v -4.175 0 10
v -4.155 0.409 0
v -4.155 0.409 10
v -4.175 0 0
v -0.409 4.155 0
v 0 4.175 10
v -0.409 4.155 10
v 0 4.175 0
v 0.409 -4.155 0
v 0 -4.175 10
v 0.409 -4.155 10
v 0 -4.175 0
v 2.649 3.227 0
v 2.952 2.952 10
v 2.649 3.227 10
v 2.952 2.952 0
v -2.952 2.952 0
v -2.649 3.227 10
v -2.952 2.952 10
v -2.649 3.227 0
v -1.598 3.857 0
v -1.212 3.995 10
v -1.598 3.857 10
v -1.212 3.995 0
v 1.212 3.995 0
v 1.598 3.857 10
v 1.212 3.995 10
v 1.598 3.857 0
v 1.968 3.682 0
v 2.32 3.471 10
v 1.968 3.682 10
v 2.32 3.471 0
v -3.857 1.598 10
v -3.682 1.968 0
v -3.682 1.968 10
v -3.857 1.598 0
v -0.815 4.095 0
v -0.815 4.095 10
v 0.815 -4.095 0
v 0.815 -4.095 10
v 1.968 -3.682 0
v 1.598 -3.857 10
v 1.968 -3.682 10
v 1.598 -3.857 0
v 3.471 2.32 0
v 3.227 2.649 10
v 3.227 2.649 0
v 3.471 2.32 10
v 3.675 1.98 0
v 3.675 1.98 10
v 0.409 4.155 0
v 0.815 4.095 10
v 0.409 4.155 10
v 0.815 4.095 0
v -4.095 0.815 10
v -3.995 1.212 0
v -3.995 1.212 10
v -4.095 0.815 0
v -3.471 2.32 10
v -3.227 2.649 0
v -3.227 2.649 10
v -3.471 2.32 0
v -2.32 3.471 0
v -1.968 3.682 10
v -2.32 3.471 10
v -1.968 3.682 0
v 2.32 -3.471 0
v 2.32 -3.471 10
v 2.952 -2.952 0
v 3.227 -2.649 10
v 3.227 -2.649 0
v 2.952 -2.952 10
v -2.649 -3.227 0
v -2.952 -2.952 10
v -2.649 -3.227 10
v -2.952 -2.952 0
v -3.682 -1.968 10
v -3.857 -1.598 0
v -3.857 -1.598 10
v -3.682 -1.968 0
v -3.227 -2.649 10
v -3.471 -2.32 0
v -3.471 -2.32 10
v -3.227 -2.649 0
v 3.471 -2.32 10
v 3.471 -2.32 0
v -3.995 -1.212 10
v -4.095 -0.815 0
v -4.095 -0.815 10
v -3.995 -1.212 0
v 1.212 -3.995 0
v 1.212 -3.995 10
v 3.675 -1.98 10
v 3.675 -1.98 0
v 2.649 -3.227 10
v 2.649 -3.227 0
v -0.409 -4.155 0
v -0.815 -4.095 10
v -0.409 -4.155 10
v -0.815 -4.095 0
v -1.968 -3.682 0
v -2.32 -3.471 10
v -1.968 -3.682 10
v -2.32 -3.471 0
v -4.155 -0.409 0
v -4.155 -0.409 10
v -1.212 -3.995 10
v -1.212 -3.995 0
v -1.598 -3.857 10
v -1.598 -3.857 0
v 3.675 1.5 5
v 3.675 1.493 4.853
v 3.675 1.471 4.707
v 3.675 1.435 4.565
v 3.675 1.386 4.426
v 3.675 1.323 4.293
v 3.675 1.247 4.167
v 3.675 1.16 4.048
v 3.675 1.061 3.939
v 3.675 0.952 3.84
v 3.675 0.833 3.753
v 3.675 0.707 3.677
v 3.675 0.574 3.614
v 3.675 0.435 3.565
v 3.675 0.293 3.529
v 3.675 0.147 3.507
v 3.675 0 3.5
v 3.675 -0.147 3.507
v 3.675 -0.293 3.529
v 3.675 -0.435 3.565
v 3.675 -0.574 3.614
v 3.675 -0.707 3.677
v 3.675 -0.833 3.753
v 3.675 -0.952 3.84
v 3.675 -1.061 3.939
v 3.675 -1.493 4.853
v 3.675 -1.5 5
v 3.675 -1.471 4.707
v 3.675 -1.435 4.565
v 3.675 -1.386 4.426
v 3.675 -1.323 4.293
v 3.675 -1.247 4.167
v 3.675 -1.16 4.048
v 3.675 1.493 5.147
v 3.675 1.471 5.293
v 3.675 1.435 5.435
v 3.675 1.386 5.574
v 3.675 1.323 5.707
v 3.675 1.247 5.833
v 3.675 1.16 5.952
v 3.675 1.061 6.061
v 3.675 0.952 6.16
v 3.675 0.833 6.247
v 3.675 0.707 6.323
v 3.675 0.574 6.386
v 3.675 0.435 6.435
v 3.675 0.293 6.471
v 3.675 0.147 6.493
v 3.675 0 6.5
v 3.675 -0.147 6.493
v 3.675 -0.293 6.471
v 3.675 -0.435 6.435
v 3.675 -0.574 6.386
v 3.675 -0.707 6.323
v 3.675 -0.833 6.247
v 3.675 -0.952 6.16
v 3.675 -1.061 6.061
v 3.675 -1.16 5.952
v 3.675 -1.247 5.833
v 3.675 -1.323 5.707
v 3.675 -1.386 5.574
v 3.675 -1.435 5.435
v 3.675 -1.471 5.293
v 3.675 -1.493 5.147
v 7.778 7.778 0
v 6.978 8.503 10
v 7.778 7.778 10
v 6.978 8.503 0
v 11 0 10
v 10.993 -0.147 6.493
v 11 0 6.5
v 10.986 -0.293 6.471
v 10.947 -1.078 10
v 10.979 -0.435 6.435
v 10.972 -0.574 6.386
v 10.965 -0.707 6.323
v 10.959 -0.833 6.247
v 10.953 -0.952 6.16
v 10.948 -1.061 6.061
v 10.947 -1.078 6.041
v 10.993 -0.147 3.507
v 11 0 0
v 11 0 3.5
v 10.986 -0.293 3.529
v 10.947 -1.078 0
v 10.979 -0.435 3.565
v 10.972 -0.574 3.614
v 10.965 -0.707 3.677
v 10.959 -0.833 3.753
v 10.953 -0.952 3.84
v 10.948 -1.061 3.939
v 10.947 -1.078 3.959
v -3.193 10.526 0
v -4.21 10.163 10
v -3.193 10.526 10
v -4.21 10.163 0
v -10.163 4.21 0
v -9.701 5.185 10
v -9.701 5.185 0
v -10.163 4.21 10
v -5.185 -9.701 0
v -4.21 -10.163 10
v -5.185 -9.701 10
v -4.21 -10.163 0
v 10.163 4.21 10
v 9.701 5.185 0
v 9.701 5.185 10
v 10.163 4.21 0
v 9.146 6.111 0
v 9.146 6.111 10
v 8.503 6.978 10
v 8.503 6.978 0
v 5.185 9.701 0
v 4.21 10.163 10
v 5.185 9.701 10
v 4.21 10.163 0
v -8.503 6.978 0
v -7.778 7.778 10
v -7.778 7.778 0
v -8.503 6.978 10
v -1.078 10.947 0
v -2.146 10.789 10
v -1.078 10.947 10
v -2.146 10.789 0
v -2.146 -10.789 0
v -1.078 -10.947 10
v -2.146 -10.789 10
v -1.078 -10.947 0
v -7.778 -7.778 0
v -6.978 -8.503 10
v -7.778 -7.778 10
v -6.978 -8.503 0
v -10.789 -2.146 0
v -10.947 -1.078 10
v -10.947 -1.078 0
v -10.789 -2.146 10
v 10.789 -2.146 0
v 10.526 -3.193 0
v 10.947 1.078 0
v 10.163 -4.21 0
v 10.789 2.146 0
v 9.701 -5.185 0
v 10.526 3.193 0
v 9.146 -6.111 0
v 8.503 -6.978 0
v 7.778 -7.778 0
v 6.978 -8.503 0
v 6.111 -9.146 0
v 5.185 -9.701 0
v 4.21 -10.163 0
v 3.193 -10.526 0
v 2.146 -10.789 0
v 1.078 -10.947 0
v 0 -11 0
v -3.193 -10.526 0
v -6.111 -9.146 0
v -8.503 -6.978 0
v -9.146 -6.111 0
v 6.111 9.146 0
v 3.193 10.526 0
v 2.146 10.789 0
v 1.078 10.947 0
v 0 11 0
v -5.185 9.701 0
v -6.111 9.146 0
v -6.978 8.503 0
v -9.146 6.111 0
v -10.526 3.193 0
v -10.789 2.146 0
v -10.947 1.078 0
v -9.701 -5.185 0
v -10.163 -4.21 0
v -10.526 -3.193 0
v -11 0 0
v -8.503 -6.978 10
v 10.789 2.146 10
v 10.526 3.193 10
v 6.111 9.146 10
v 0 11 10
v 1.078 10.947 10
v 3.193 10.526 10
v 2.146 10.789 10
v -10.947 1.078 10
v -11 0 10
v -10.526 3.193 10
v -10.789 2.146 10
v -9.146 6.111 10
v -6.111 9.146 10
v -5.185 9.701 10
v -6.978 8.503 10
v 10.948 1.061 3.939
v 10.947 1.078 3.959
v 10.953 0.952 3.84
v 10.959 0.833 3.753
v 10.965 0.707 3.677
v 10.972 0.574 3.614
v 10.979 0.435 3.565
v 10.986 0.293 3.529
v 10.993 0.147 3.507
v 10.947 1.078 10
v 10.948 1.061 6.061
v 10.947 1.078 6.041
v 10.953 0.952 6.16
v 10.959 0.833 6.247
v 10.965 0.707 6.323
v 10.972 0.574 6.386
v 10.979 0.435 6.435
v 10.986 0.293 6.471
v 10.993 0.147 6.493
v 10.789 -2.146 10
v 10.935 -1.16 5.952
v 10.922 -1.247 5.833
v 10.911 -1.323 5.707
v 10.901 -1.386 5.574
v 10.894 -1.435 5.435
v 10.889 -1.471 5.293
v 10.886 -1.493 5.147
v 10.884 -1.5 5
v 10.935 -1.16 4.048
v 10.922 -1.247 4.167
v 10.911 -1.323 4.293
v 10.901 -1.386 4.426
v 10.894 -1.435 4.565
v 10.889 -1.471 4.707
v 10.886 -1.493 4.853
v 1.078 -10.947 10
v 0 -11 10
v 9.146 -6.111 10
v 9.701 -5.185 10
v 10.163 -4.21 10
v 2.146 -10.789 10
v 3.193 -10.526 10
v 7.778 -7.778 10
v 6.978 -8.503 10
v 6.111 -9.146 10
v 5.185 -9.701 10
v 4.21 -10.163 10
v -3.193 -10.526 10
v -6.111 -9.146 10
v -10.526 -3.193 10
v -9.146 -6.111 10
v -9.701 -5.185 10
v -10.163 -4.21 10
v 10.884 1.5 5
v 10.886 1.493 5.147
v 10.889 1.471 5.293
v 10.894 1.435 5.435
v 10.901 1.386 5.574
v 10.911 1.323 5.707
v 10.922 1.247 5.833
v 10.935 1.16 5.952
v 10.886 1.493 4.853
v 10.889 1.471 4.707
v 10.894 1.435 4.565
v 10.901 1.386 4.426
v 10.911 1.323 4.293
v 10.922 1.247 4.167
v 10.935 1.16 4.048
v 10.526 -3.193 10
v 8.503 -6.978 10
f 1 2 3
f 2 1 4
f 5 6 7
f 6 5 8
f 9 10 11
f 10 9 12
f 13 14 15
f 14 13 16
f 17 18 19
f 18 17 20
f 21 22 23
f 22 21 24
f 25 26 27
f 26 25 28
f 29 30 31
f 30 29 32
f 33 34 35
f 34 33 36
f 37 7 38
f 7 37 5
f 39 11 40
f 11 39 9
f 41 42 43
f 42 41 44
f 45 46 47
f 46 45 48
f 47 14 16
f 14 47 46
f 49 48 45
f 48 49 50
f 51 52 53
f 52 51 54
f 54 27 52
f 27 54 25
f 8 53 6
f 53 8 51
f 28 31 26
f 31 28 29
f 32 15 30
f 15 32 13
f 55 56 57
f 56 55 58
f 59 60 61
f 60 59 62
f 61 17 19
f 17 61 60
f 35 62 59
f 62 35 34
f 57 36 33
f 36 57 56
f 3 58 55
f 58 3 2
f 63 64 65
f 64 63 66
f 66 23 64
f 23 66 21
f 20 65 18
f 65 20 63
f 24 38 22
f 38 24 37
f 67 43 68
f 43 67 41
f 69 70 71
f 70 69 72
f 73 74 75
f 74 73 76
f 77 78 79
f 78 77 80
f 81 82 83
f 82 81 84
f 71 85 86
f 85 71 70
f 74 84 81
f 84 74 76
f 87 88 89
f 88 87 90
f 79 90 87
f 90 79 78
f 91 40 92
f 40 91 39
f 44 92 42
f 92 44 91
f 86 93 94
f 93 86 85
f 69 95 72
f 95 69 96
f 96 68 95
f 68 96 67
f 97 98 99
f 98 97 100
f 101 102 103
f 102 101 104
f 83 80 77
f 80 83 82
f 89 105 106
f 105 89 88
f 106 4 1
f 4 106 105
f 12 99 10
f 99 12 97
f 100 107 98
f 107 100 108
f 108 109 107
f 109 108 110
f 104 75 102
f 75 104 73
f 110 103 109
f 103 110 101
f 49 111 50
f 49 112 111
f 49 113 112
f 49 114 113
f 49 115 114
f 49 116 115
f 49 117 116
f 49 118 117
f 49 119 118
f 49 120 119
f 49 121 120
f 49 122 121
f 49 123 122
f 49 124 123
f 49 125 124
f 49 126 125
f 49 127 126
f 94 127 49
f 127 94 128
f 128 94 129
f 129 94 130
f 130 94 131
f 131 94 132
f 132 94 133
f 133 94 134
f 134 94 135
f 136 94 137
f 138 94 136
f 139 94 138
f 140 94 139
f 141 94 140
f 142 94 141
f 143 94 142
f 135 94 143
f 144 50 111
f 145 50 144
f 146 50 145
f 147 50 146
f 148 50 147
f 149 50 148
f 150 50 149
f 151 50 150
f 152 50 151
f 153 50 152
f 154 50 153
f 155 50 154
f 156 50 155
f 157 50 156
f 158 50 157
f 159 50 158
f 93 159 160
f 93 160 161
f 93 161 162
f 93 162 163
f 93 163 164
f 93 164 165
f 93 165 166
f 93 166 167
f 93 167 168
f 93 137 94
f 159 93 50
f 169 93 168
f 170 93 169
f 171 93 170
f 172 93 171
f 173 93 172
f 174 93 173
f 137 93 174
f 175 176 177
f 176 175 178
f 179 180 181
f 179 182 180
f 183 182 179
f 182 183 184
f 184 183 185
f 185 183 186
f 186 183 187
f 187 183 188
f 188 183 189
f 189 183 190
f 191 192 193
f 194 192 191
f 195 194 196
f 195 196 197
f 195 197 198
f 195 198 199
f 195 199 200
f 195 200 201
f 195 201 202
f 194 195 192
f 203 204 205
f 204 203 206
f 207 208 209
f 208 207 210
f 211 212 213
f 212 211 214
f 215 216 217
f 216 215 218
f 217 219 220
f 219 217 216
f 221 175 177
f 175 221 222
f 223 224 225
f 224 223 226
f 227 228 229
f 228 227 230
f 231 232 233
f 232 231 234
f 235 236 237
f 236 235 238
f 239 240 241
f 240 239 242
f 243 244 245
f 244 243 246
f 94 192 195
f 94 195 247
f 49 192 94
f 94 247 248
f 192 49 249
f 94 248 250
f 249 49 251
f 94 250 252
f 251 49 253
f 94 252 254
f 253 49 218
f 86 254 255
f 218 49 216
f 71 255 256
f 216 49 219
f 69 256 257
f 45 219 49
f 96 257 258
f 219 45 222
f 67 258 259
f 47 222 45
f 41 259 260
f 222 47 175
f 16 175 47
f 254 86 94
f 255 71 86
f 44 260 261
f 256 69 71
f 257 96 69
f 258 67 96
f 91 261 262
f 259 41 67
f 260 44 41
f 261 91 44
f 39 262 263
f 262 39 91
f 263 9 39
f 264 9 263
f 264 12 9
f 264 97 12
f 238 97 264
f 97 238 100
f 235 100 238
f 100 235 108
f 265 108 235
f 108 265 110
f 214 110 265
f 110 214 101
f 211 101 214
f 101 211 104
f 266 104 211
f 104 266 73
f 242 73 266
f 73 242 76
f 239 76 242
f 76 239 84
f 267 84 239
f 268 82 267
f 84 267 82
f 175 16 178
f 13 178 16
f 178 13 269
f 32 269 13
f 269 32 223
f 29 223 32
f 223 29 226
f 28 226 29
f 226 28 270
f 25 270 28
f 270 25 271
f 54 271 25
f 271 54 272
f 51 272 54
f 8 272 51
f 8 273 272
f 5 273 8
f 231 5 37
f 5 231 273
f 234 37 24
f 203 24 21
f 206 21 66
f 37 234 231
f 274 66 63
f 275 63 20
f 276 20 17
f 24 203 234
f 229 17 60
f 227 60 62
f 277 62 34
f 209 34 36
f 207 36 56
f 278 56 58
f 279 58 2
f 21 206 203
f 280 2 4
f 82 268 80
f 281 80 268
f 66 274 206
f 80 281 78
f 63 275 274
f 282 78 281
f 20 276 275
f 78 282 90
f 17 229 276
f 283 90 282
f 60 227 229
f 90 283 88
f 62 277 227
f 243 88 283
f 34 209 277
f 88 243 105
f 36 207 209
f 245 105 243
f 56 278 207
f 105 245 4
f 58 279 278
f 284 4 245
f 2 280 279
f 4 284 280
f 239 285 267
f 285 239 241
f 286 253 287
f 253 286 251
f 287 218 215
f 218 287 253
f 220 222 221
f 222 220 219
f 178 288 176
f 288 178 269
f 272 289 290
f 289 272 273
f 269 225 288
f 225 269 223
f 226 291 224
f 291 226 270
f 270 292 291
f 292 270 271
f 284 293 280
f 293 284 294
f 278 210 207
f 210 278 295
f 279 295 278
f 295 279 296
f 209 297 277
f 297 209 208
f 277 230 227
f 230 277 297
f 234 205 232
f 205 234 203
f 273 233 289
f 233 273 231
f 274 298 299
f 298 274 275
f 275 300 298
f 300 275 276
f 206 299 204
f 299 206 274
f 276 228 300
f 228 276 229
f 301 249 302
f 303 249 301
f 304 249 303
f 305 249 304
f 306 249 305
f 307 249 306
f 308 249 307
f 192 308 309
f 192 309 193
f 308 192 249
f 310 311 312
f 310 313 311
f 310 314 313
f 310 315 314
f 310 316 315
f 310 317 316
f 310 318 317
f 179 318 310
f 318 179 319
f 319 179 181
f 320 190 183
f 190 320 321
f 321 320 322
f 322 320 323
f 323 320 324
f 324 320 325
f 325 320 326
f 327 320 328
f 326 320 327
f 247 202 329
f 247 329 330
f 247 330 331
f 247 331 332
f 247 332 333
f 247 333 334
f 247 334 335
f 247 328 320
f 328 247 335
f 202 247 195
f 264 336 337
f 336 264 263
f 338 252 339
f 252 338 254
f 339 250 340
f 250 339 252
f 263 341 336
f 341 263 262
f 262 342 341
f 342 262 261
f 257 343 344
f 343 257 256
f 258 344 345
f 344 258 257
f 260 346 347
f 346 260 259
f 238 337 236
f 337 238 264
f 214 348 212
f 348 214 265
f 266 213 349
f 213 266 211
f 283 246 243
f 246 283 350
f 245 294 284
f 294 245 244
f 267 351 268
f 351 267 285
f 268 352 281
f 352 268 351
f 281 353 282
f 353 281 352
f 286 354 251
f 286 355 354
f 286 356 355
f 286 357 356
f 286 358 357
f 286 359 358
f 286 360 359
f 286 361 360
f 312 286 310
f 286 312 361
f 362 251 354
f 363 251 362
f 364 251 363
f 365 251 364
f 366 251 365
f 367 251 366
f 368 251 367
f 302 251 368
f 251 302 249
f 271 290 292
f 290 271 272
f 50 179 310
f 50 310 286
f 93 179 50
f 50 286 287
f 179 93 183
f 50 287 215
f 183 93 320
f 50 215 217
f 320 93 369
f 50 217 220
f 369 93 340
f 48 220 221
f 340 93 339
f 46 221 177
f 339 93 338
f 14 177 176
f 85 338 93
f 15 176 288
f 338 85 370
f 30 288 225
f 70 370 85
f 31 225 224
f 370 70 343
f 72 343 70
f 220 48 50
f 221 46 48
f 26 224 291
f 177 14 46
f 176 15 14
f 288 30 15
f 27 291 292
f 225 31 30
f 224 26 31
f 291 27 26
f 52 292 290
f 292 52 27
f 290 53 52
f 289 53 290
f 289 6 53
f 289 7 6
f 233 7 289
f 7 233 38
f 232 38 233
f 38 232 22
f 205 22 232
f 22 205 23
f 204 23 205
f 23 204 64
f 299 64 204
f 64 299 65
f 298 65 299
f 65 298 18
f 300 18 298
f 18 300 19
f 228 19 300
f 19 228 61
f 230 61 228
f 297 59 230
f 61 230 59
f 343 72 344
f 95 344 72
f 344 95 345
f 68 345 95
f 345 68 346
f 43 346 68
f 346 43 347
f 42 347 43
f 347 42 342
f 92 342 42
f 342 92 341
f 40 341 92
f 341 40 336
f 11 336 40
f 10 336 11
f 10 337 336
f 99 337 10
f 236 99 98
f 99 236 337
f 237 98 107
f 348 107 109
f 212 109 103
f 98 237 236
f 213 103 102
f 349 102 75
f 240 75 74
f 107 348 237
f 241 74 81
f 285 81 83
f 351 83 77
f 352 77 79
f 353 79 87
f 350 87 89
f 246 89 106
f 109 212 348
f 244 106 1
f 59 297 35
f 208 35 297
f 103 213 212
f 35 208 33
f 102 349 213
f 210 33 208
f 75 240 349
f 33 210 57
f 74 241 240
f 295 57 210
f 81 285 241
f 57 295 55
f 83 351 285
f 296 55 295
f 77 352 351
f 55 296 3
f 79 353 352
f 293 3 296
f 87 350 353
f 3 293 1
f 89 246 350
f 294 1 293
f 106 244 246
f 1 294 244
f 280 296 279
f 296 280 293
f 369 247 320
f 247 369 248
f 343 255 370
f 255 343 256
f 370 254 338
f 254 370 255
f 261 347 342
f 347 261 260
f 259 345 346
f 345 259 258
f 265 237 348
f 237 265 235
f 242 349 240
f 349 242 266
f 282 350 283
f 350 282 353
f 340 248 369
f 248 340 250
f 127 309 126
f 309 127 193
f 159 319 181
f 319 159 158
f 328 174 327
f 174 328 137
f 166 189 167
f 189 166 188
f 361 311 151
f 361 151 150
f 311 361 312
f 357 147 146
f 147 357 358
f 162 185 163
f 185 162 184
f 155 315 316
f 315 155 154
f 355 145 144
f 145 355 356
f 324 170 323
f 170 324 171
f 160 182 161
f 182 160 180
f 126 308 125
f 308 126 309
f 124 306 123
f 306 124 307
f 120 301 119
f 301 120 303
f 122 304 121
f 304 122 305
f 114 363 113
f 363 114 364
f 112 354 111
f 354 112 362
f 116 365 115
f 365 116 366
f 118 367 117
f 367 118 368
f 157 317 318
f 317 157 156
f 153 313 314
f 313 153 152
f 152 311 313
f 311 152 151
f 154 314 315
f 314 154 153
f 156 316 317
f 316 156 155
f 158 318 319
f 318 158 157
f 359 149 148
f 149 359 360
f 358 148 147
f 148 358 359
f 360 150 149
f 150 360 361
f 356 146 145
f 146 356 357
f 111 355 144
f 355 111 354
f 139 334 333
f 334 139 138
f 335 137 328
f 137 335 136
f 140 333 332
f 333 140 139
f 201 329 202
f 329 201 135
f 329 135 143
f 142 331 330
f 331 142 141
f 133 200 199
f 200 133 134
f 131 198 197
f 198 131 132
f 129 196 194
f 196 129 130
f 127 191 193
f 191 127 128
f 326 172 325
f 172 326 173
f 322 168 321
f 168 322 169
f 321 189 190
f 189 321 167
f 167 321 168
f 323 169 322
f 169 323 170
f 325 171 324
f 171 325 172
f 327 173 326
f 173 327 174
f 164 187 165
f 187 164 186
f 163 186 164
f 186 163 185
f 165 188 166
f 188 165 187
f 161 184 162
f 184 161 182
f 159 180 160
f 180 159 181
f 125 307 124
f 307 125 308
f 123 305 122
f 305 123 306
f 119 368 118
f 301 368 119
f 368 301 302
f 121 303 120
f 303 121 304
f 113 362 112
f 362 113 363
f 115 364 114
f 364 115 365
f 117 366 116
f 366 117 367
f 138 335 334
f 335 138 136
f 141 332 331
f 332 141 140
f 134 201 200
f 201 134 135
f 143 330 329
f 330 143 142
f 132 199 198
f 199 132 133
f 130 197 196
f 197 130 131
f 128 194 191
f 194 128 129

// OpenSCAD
// file: parameters.scad
// =============================================================================
// Gen-BG — nightly 2026-10-04 (physics_scorer, honest magpylib watts)
// 8-pole / 9-coil dual rotor (best winding factor 0.945) pushed out to RL 46 with 9.9 mm tall copper on steel-seated magnets; 3 smaller coils per phase and less wire (257 m) than 6-coil.
// Clocking 0 deg (magnets N facing S) + D-flat keyed bore + index notch + flip-symmetric hole map.
// Windable 2-piece bobbin; turns = physics_scorer turns_fit; copper only between flanges.
// Steel back-iron: two 3.0 mm mild-steel discs (steel_backiron_disc.dxf); magnets sit ON the steel
// (through-pockets) -> score with --back-iron.
// =============================================================================
topology            = "dual_rotor";

// --- Wire / winding (physics_scorer winding-fit) -------------------------------
wire_awg            = 26;
wire_od             = 0.45;     // insulated OD mm (bare 0.405)
fill_realistic      = 0.60;     // insulated-wire area / window, hand-wound layered
turns               = 364;       // = physics_scorer turns_fit (do NOT raise)
coil_former_type    = "bobbin";
coil_core_inset     = 9.75;     // radial copper build: hub = copper boundary inset by this
wind_build_axial    = 0.0;      // nothing proud of the flanges
wind_build_radial   = 0.0;

// --- Bobbin (base + lid) ---------------------------------------------------------
coil_id_r           = 30.00;    // copper boundary sector
coil_od_r           = 62.00;
span_deg            = 32.93;    // = pitch - 2*asin((wall+0.85)/coil_id_r) -> >=1.2 mm stator web
former_web          = 9.90;     // copper height between flanges (TALL copper: steel keeps Bz up)
flange_t            = 0.80;     // >= 0.8 mm FDM wall rule (tall winds push on the flanges)
wall                = 1.00;     // flange lip beyond copper
former_bare_h       = former_web + 2 * flange_t;
coil_envelope_h     = former_bare_h + 2 * wind_build_axial;
tab_w               = 7.0;
tab_len             = 7.0;
tab_h               = former_bare_h / 2;
pin_d               = 1.9;      // 1.75 mm filament locating pin
coil_mount_r        = coil_od_r + 0.2 + 4.0;
lead_y              = 1.6;
lead_slot_w         = 0.9;
lead_groove_d       = 0.6;

// --- Gap -------------------------------------------------------------------------
run_clear           = 0.50;     // rotor face -> flange
gap_spacer_h        = run_clear + wind_build_axial;
m2m                 = coil_envelope_h + 2 * run_clear;   // rotor face to rotor face (= gap_sleeve length)

// --- Stator ----------------------------------------------------------------------
coil_stations       = 9;
bay_clear           = 0.25;
stator_thick        = former_bare_h;                        // bobbins flush both faces
stator_od           = 157.0;
shaft_clear_stator  = 14.0;     // stator is static; gap sleeve OD 12 spins inside

// --- Rotor(s) --------------------------------------------------------------------
magnet_Br           = 1.43;     // N52
magnet_d_large      = 20.0;
magnet_h_large      = 5.0;      // one O20x5 per pocket
magnet_h_small      = 5.0;      // one O5x5 per pocket
halbach_magnetisation = "diametric"; // O5x5 assist magnets MUST be DIAMETRICALLY magnetised (tangential)
rotor_b_same_axis   = true;     // same-index magnets share one axis: N faces S across the gap
large_pocket_d      = 20.3;
small_pocket_d      = 5.3;
pocket_h            = 5.10;     // THROUGH the carrier: magnet back face sits on the steel disc
large_n             = 8;
R_large             = 46.0;
R_small_inner       = 32.0;
R_small_mid         = 46.0;
R_small_outer       = 63.0;
small_r_list        = [R_small_inner, R_small_mid, R_small_outer];   // O5 pockets between poles
carrier_od          = 135.0;
carrier_thick       = pocket_h;
hub_h               = 10.0;
hub_od              = 24.0;     // slim hub so the M4 brace rods fit at R~18 inside the coil ring
hub_insert_d        = 4.0;      // M3 heat-set insert, radial, bears on the D-flat
rotor_b_offset_deg  = 0.0;      // CLOCKING: magnets directly opposite
shaft_key           = "dflat";
dflat_depth         = 0.5;      // 8 mm shaft with 0.5 mm flat (7.5 across flat)
index_notch_d       = 3.0;

// --- Steel back-iron (buyable laser-cut) -------------------------------------------
steel_t             = 3.0;      // mild steel thickness (not modelled by the image method; >=3 avoids saturation)
steel_center_hole   = 26.0;     // slips over the rotor hub (OD 24)

// --- Modular MAX interface ----------------------------------------------------------
shaft_bore          = 8.35;
dflat_x             = 4.0 - dflat_depth + (shaft_bore - 8.0) / 2;
bearing_d           = 21.85;
bearing_h           = 7.2;
m3_clear            = 3.5;
bolt_r_inner        = 27.0;     // M3 steel-disc clamp bolts (inside the magnet ring)
bolt_n_inner        = 4;
bolt_inner_angles   = [0, 90, 180, 270];
bolt_r_outer        = 59.0;     // M3 steel-disc clamp bolts (outside the magnet ring)
bolt_outer_angles   = [0, 90, 180, 270];
flange_bolt_r       = 73.5;     // frame rods: OUTSIDE the rotor OD (rotors spin inside them)
flange_bolt_n       = 9;
flange_bolt_offset  = 20.00;    // between coil stations -> never cuts a lead groove/tab
brace_r             = 18.0;
brace_d             = 4.3;      // temporary M4 jack rods (assembly only)
brace_n             = 4;
brace_angles        = [45, 135, 225, 315];          // flip-symmetric

spacer_pad_od       = 14.0;
spacer_pad_id       = m3_clear;
endbell_od          = 157.0;
endbell_thick       = 8.0;
endbell_shaft_clear = 10.0;
collar_h            = 10.0;
standoff_od         = 9.0;
frame_standoff_h    = run_clear + carrier_thick + hub_h + collar_h + 2.0;
sleeve_od           = 12.0;
plate_max_mm        = 410;

$fn = 64;
// main file
// Gen-BG — shaft collar with D-flat bore (set screw bears on the flat); print x4
include <parameters.scad>;
$fn = 64;
// D-flat keyed bore: flat faces +X (angle 0 = magnet pocket 0 = index notch)
module dflat_bore(h) {
    intersection() {
        cylinder(d=shaft_bore, h=h);
        translate([-shaft_bore, -shaft_bore, 0]) cube([shaft_bore + dflat_x, 2*shaft_bore, h]);
    }
}

od = 22; h = collar_h; set_d = 3.0;
difference() {
    cylinder(d=od, h=h);
    translate([0, 0, -0.1]) dflat_bore(h + 0.2);
    translate([0, 0, h/2]) rotate([0, 90, 0]) cylinder(d=set_d, h=od);
}
